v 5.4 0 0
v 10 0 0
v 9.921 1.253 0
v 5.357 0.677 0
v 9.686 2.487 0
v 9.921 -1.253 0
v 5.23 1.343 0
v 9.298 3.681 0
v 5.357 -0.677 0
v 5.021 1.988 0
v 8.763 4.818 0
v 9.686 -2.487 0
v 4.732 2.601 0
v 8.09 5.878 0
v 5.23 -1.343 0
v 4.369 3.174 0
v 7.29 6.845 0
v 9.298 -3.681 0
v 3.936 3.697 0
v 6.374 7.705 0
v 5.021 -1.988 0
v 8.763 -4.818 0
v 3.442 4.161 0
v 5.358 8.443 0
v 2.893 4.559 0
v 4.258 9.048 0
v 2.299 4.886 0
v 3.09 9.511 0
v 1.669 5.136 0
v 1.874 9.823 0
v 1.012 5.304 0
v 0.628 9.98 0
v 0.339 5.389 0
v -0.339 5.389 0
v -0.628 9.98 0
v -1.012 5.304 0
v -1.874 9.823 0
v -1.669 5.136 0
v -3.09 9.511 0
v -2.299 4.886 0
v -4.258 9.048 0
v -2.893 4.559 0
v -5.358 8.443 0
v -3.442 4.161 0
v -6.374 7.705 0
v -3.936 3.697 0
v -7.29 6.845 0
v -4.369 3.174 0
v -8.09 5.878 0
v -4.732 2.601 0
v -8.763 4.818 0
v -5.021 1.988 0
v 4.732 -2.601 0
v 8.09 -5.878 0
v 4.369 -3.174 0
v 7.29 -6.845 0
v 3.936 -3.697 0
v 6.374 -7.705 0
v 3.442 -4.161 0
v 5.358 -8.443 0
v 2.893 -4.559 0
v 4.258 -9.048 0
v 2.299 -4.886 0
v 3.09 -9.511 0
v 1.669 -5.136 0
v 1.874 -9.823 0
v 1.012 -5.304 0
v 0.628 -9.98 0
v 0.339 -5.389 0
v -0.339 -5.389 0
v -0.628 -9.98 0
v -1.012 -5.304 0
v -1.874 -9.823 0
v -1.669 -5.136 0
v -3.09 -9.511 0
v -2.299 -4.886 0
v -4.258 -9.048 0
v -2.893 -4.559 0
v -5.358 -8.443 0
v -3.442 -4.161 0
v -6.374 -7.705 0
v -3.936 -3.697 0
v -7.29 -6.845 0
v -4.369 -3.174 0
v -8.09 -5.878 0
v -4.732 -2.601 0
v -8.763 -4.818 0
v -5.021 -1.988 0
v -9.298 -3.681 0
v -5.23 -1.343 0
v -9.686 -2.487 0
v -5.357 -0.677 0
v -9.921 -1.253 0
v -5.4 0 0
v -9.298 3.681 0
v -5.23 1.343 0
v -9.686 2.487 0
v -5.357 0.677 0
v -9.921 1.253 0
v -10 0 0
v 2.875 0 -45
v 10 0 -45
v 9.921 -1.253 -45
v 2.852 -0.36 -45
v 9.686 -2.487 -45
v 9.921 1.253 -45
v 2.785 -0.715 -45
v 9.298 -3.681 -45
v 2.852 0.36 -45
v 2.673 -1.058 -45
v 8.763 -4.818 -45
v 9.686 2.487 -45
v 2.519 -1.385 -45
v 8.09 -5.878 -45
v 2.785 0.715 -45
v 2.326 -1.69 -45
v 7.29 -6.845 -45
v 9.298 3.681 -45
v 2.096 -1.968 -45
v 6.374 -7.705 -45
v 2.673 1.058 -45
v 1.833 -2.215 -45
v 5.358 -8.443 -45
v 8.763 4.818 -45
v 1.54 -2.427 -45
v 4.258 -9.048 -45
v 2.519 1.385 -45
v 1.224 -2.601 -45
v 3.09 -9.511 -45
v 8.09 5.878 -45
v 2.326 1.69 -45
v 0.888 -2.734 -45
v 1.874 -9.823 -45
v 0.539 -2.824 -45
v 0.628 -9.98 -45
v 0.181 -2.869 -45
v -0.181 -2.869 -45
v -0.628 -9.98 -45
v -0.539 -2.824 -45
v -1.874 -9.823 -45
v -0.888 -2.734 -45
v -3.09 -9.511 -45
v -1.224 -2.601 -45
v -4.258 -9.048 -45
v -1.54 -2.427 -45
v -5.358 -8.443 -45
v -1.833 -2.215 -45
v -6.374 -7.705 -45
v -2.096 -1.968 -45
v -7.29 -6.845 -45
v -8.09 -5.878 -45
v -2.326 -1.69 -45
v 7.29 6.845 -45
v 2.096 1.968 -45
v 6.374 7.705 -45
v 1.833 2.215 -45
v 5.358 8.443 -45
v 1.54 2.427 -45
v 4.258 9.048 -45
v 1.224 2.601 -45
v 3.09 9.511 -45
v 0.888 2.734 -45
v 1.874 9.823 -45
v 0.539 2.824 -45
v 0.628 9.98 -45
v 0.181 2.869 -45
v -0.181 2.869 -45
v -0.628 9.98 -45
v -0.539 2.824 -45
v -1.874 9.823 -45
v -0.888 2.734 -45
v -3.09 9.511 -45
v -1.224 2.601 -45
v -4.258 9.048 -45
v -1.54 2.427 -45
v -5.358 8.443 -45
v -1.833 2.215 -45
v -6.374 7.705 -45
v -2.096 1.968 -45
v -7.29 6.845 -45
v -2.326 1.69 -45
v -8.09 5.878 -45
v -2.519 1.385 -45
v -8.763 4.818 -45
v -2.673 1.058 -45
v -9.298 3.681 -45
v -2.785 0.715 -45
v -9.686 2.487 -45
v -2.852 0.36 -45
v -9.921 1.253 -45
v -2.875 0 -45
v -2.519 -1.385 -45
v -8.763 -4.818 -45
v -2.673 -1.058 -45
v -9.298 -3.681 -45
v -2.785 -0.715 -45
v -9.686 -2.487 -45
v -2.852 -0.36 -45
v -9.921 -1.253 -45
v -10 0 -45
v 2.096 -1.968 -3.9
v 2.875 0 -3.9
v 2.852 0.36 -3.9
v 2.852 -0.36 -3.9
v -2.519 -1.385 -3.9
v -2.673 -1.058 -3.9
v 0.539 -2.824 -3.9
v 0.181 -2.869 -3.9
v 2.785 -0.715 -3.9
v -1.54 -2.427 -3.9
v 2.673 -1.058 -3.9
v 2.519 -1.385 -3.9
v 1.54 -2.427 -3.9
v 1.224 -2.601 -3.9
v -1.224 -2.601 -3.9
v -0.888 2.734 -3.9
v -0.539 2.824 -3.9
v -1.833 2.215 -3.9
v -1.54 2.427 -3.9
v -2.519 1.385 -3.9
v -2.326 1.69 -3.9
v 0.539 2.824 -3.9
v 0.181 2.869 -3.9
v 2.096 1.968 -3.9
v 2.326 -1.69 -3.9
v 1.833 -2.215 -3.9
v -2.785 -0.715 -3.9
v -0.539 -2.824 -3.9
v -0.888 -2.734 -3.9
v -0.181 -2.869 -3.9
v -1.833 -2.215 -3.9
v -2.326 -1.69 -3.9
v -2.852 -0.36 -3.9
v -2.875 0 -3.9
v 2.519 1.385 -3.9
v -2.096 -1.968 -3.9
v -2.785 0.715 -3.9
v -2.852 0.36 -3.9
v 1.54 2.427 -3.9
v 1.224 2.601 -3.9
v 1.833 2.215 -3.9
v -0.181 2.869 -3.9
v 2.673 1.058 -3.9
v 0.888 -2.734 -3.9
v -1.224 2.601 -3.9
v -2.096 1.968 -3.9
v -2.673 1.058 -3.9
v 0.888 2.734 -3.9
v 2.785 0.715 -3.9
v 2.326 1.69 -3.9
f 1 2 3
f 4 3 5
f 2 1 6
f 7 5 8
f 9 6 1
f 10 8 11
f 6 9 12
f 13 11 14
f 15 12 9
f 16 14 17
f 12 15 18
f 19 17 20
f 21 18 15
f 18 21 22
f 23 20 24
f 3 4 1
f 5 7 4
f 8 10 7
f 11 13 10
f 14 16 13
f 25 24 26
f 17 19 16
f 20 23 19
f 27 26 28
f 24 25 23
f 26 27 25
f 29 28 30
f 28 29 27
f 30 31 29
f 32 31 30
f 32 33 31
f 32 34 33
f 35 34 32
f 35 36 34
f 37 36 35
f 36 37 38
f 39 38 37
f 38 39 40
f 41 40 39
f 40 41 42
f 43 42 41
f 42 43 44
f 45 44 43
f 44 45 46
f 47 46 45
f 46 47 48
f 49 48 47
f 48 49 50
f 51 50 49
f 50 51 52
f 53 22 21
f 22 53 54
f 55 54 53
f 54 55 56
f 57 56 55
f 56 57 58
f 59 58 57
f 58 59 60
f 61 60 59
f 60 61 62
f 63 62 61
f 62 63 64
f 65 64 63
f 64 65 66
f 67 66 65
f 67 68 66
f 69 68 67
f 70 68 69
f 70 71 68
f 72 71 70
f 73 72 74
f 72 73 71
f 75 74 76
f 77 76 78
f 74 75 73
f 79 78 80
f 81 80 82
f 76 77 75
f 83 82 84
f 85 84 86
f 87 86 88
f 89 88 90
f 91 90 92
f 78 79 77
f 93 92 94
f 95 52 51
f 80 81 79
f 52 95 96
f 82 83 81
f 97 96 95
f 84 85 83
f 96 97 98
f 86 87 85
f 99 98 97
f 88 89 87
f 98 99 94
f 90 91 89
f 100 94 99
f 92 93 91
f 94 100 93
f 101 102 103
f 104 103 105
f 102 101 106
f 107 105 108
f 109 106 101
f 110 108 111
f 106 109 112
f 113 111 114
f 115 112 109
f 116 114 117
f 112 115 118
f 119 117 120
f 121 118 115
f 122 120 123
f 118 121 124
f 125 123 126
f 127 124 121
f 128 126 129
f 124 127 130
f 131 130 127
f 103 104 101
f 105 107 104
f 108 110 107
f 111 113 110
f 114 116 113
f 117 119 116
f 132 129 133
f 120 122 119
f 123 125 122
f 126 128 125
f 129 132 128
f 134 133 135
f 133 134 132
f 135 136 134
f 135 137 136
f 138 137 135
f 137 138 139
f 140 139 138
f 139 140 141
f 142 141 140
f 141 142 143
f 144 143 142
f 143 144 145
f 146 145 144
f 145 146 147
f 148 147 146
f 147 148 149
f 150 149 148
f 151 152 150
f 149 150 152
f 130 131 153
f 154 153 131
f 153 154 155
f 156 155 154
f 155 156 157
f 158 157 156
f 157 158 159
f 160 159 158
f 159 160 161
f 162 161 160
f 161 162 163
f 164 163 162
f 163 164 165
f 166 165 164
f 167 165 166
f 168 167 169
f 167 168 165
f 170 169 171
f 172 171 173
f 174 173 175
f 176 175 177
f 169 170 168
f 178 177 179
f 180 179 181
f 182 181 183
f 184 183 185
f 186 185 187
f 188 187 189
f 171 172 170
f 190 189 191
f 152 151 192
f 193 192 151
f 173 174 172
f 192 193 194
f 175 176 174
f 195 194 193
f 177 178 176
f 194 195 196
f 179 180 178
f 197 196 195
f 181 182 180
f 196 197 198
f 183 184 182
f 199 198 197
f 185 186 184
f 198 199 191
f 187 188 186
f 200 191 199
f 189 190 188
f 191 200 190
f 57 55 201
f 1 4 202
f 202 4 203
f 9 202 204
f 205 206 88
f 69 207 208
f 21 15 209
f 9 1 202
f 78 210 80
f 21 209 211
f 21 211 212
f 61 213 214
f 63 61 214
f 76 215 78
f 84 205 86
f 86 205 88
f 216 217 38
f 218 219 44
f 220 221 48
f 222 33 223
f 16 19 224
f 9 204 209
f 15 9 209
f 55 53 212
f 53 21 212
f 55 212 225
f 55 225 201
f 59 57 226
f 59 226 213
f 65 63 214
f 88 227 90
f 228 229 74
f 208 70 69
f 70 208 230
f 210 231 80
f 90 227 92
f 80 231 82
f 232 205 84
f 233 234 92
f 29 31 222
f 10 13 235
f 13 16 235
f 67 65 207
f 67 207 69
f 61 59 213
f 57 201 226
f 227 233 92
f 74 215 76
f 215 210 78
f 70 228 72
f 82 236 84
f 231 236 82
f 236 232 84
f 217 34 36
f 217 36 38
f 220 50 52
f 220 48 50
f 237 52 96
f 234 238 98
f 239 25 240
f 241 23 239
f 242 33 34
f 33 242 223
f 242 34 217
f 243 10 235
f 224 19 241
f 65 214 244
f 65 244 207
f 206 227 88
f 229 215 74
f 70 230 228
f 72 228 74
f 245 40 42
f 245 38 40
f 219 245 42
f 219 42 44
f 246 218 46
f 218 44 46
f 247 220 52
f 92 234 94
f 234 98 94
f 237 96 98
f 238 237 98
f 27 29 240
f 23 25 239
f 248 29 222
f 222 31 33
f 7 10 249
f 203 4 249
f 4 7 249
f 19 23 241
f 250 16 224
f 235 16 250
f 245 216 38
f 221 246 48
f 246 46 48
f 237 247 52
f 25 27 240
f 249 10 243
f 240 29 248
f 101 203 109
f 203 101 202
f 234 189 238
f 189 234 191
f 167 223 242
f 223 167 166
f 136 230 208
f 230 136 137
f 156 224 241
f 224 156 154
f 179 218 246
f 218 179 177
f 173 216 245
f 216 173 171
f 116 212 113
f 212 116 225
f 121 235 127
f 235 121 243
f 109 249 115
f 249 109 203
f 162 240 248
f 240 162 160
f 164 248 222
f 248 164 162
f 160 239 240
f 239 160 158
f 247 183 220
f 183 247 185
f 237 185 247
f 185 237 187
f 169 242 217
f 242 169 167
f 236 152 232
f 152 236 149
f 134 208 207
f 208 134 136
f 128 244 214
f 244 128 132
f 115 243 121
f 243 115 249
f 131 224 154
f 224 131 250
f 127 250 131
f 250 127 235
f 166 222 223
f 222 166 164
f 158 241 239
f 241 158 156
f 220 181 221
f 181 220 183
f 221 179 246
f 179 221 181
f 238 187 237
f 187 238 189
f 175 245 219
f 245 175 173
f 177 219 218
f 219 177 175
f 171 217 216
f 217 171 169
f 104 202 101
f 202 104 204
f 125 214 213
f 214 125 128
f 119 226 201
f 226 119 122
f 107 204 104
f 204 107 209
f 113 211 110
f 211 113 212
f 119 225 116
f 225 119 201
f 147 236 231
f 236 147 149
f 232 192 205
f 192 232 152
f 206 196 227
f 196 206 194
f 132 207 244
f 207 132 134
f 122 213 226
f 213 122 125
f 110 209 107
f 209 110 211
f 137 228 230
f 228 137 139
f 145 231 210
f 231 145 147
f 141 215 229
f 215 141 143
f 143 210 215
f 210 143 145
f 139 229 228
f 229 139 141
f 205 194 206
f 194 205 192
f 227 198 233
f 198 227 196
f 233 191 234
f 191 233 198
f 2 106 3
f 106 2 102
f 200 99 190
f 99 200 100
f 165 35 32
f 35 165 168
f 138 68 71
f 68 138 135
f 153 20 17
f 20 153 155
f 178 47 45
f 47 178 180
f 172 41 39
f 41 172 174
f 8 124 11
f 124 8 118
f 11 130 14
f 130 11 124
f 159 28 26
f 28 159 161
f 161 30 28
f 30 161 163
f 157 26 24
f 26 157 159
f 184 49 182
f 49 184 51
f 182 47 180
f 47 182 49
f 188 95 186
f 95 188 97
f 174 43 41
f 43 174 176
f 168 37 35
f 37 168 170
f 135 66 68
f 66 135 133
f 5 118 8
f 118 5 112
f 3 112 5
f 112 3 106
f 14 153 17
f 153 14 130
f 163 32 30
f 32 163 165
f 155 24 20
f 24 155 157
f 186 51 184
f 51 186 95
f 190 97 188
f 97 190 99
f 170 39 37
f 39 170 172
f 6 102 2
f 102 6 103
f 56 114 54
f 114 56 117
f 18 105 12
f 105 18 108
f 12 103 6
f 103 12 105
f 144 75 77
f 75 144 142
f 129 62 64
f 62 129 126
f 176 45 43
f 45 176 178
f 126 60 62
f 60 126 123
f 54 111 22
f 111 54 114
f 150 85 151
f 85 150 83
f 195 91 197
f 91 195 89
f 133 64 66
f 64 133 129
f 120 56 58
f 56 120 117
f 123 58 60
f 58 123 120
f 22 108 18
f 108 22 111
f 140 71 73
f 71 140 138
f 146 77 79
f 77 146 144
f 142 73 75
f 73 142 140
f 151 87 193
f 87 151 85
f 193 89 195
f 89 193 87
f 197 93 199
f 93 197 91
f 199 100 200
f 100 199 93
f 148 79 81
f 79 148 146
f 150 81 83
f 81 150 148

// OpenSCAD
$fn = 50;


difference() {
	union() {
		translate(v = [0, 0, -45.0000000000]) {
			cylinder(h = 45, r = 10.0000000000);
		}
		cylinder(h = 0, r = 16.0000000000);
	}
	union() {
		translate(v = [0, 0, 0]) {
			rotate(a = [0, 0, 0]) {
				difference() {
					union() {
						#translate(v = [0, 0, -45.0000000000]) {
							cylinder(h = 45, r = 2.6000000000);
						}
						#translate(v = [0, 0, -3.9000000000]) {
							cylinder(h = 3.9000000000, r = 10.0000000000, r1 = 2.8750000000, r2 = 5.4000000000);
						}
						#translate(v = [0, 0, -45.0000000000]) {
							cylinder(h = 45, r = 2.8750000000);
						}
						#translate(v = [0, 0, -45.0000000000]) {
							cylinder(h = 45, r = 2.6000000000);
						}
					}
					union();
				}
			}
		}
	}
}
